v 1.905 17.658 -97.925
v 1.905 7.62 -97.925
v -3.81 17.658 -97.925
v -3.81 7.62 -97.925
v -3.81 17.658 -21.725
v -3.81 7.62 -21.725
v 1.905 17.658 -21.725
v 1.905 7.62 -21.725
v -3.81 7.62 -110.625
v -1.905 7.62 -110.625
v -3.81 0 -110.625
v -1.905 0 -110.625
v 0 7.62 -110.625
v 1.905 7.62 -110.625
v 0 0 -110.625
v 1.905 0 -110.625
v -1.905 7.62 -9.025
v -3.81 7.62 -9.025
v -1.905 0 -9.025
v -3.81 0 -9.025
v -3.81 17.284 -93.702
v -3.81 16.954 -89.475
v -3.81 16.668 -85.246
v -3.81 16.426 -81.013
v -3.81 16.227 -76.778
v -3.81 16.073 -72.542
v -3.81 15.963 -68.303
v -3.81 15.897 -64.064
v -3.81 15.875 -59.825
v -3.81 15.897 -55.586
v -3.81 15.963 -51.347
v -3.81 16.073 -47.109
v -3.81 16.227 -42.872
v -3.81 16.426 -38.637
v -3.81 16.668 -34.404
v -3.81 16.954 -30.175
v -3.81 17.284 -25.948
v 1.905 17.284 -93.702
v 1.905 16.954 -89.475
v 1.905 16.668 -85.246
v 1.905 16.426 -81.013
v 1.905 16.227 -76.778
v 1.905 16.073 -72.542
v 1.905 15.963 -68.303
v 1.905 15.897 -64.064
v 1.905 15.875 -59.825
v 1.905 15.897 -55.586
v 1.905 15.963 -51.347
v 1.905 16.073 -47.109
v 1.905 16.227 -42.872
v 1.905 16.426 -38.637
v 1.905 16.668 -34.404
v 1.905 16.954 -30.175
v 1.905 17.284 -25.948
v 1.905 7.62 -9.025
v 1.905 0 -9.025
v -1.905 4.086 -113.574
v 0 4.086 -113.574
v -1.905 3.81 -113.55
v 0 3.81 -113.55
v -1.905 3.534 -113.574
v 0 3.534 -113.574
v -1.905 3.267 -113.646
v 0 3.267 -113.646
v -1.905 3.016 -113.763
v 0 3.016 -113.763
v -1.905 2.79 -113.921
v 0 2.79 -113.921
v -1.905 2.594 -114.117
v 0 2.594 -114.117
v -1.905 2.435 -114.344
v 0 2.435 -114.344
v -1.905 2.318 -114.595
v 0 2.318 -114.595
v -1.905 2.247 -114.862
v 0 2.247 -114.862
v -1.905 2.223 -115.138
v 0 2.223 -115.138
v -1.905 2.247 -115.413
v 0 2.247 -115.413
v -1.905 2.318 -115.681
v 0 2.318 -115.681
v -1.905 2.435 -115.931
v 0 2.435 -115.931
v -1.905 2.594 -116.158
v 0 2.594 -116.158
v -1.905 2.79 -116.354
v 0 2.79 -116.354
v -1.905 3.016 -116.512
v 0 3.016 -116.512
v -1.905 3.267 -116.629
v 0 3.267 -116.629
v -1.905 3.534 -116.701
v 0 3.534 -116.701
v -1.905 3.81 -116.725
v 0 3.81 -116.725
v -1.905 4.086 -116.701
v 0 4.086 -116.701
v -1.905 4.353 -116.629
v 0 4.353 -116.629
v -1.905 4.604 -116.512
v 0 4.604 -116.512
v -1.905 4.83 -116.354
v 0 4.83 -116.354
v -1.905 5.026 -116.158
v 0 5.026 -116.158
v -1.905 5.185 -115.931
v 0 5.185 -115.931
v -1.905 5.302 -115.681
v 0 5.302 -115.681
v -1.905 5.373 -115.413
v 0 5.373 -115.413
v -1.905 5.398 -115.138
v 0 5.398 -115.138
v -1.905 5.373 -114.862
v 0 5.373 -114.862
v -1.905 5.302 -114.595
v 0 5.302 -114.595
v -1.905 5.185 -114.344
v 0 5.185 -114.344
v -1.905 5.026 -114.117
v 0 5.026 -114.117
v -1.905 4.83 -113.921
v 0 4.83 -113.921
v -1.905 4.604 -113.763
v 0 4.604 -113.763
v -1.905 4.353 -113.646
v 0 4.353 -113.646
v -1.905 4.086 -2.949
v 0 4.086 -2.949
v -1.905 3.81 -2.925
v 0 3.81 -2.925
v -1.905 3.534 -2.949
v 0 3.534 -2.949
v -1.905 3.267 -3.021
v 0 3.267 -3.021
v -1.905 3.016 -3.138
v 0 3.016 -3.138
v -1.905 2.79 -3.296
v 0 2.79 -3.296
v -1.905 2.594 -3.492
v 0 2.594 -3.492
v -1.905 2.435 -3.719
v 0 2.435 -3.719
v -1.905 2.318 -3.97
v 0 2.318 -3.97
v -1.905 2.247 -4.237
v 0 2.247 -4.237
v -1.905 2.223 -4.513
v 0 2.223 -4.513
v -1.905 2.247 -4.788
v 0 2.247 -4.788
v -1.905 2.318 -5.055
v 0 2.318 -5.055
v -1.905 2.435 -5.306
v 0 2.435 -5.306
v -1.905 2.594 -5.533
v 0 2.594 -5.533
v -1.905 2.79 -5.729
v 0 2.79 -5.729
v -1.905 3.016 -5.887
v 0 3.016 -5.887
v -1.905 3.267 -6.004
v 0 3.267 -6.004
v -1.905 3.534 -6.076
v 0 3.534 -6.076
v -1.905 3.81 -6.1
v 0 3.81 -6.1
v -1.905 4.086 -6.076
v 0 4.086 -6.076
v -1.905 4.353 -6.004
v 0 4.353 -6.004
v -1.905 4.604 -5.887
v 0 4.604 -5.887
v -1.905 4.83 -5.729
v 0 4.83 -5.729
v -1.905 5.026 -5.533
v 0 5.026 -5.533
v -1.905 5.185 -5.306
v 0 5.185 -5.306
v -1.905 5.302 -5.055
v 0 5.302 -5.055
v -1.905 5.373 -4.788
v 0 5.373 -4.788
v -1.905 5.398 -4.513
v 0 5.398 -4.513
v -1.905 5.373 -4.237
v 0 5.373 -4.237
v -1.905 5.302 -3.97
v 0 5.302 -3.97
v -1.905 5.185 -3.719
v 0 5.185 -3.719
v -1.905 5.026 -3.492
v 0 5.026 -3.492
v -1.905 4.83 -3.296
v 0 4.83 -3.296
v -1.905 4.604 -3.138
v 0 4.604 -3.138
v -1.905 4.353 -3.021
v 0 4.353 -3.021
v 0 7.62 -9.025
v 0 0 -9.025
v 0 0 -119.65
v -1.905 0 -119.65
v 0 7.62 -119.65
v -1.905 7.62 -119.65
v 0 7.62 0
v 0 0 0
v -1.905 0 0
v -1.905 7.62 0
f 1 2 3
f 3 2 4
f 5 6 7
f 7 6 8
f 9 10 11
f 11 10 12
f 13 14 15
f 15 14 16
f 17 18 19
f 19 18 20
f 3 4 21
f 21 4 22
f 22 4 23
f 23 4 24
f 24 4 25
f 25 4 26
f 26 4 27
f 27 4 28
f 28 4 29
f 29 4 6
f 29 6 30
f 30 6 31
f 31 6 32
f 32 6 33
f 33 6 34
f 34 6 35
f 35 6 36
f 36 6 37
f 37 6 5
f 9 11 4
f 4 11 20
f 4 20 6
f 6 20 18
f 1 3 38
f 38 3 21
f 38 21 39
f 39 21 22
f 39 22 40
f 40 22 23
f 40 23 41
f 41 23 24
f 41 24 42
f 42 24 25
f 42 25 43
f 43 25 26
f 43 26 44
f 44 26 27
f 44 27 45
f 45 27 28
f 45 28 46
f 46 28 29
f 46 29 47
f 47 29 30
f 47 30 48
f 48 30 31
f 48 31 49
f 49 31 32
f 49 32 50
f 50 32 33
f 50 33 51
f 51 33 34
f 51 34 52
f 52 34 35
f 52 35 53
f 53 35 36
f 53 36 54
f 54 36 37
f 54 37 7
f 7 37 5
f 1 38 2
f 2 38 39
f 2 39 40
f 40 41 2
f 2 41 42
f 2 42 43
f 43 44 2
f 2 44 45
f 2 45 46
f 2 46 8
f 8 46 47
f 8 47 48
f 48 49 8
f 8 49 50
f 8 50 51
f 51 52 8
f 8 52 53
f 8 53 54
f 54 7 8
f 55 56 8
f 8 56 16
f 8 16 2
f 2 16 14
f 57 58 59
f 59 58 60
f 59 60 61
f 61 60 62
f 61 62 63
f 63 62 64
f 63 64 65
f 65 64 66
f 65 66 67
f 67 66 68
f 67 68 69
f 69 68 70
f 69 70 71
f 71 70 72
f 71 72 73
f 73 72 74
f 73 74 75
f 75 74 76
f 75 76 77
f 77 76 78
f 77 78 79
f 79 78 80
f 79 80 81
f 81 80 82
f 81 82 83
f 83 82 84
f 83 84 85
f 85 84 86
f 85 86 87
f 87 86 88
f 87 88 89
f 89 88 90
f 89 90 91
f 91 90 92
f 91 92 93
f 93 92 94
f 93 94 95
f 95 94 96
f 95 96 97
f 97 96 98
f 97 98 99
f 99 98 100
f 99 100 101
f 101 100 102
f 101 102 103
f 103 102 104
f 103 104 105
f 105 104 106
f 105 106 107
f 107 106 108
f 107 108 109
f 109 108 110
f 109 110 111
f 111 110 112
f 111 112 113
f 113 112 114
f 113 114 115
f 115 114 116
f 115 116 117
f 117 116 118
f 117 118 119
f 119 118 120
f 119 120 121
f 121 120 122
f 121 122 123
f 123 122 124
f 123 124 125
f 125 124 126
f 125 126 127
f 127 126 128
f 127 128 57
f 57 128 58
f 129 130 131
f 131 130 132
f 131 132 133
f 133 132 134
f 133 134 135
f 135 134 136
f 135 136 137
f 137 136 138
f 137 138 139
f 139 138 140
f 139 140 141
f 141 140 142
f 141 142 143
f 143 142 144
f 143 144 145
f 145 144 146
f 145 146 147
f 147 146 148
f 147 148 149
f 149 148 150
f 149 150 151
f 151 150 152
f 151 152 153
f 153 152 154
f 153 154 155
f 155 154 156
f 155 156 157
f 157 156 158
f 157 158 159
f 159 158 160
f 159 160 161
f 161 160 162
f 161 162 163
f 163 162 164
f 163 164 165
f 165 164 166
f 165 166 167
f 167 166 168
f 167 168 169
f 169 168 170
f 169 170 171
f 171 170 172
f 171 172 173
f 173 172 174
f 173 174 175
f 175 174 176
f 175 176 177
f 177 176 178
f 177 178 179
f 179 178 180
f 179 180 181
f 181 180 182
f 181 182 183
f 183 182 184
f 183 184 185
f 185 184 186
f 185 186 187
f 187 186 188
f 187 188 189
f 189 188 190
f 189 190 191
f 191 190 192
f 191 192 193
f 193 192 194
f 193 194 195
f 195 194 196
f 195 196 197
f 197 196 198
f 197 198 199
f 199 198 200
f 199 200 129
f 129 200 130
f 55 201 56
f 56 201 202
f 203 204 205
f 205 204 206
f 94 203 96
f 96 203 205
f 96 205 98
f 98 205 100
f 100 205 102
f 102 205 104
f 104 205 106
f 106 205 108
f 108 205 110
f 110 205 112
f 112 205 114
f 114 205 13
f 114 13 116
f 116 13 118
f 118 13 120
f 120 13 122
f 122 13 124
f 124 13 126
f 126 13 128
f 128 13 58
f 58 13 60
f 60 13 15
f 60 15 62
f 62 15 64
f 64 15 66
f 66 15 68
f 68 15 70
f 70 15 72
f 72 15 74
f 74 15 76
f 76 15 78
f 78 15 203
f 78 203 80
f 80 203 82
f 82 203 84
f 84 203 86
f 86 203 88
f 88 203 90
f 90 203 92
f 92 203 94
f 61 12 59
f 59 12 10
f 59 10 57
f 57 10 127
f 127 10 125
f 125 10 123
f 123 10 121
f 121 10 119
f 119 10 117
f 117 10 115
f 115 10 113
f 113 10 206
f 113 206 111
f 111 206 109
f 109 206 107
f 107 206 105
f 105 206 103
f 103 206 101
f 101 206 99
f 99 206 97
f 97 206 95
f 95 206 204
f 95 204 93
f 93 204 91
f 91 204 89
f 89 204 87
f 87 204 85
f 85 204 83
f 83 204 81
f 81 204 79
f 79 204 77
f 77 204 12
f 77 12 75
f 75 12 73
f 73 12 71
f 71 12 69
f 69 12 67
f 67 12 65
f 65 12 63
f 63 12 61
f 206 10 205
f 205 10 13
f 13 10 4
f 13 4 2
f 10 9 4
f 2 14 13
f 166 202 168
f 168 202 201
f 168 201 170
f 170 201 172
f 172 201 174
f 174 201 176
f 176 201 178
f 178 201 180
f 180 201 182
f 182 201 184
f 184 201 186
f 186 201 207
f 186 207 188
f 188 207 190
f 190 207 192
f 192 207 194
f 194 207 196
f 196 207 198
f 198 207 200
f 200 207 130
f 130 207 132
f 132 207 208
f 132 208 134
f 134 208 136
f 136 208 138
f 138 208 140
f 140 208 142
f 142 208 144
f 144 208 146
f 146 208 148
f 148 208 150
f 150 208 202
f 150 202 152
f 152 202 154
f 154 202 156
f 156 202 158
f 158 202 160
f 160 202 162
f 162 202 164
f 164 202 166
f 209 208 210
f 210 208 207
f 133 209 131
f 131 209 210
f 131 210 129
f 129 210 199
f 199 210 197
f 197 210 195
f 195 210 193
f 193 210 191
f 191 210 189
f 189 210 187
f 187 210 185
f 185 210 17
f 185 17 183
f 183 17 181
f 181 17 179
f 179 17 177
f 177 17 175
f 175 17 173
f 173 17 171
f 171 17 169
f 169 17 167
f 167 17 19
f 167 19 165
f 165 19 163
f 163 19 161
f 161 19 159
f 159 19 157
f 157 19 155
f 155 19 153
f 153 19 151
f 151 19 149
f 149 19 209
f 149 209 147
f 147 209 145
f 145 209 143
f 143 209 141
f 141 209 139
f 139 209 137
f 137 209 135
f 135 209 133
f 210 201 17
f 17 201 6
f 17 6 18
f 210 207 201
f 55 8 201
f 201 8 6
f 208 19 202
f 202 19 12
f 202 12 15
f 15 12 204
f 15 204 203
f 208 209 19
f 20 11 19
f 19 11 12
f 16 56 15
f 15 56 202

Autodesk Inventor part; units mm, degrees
ref_plane "YZ Plane" through (0, 0, 0) normal (1, 0, 0) x (0, 1, 0)
ref_plane "XZ Plane" through (0, 0, 0) normal (0, 1, 0) x (-1, 0, 0)
ref_plane "XY Plane" through (0, 0, 0) normal (0, 0, 1) x (1, 0, 0)
sketch "Sketch1" plane through (0, 0, 0) normal (0, 1, 0) x (-1, 0, 0)
  line L0 (0, 0) -> (1.905, 0)
  line L1 (1.905, -119.6501) -> (0, -119.6501)
  line L2 (0, 0) -> (0, -9.025)
  line L3 (0, 0) -> (9.025, 0) construction
  line L4 (0, -9.025) -> (1.905, -9.025)
  line L5 (0, -119.6501) -> (0, -110.625)
  line L6 (0, -110.625) -> (1.905, -110.625)
  line L7 (1.905, -9.025) -> (3.81, -9.025)
  line L8 (3.81, -9.025) -> (3.81, -110.625)
  line L9 (3.81, -110.625) -> (1.905, -110.625)
  line L10 (0, -9.025) -> (-1.905, -9.025)
  line L11 (-1.905, -9.025) -> (-1.905, -110.625)
  line L12 (-1.905, -110.625) -> (0, -110.625)
  line L13 (1.905, 0) -> (1.905, -9.025)
  line L14 (1.905, -110.625) -> (1.905, -119.6501)
  line L15 (0, -119.6501) -> (0, -110.625)
  line L16 (0, -9.025) -> (0, 0)
  dimension "d19" = 101.6
  dimension "d20" = 1.905
  dimension "d21" = 1.905
  dimension "d22" = 1.905
  dimension "d23" = 1.905
  dimension "d24" = 1.905
  dimension "d25" = 1.905
extrude "Extrusion1" add sketch "Sketch1" along normal blind 7.62 contours L0 L13 L4 L2 | L6 L14 L1 L5
extrude "Extrusion2" add sketch "Sketch1" along normal blind 19.05 contours L4 L7 L8 L9 L6 L12 L11 L10
sketch "Sketch2" plane through (0, 0, 0) normal (1, 0, 0) x (0, 0, -1)
  line L0 (9.025, 7.62) -> (0, 7.62) projected
  line L1 (4.5125, 7.62) -> (4.5125, 3.81)
  line L2 (0, 0) -> (0, 7.62) projected
  line L3 (9.025, 19.05) -> (110.625, 19.05) projected
  line L4 (59.825, 19.05) -> (59.825, 0)
  line L5 (9.025, 0) -> (110.625, 0) projected
  circle A0 centre (4.5125, 3.81) radius 1.5875
  circle A1 centre (115.1376, 3.81) radius 1.5875
  dimension "d12" = 3.175
extrude "Extrusion3" cut sketch "Sketch2" against normal blind 12.7
sketch "Sketch3" plane through (1.905, 0, -9.025) normal (1, 0, 0) x (0, 0, -1)
  line L0 (0, 19.05) -> (101.6, 19.05) projected
  line L1 (50.8, 19.05) -> (50.8, 15.875)
  arc A0 (0, 19.05) -> (101.6, 19.05) centre (50.8, 423.8625) ccw
  point P0 (-9.025, 0)
  dimension "d15" = 3.175
extrude "Extrusion4" cut sketch "Sketch3" against normal blind 12.7
fillet "Fillet1" radius 4.445 2 edges at (-0.9525, 19.05, -9.025) (-0.9525, 19.05, -110.625)
sketch "Sketch4" plane through (1.905, 0, -9.025) normal (1, 0, 0) x (0, 0, -1)
  line L0 (0, 0) -> (0, 7.62) projected
  line L1 (0, 7.62) -> (12.7, 7.62)
  line L2 (12.7, 7.62) -> (12.7, 20.32)
  line L3 (12.7, 20.32) -> (0, 20.32)
  line L4 (0, 20.32) -> (0, 7.62)
  line L5 (110.625, 7.62) -> (101.6, 7.62) projected
  line L6 (101.6, 7.62) -> (88.9, 7.62)
  line L7 (88.9, 7.62) -> (88.9, 20.32)
  line L8 (88.9, 20.32) -> (101.6, 20.32)
  line L9 (101.6, 20.32) -> (101.6, 7.62)
  point P0 (-9.025, 0)
  dimension "d26" = 12.7
  dimension "d27" = 12.7
  dimension "d28" = 12.7
  dimension "d29" = 12.7
extrude "Extrusion5" cut sketch "Sketch4" against normal blind 25.4
properties part number "FretBar"
